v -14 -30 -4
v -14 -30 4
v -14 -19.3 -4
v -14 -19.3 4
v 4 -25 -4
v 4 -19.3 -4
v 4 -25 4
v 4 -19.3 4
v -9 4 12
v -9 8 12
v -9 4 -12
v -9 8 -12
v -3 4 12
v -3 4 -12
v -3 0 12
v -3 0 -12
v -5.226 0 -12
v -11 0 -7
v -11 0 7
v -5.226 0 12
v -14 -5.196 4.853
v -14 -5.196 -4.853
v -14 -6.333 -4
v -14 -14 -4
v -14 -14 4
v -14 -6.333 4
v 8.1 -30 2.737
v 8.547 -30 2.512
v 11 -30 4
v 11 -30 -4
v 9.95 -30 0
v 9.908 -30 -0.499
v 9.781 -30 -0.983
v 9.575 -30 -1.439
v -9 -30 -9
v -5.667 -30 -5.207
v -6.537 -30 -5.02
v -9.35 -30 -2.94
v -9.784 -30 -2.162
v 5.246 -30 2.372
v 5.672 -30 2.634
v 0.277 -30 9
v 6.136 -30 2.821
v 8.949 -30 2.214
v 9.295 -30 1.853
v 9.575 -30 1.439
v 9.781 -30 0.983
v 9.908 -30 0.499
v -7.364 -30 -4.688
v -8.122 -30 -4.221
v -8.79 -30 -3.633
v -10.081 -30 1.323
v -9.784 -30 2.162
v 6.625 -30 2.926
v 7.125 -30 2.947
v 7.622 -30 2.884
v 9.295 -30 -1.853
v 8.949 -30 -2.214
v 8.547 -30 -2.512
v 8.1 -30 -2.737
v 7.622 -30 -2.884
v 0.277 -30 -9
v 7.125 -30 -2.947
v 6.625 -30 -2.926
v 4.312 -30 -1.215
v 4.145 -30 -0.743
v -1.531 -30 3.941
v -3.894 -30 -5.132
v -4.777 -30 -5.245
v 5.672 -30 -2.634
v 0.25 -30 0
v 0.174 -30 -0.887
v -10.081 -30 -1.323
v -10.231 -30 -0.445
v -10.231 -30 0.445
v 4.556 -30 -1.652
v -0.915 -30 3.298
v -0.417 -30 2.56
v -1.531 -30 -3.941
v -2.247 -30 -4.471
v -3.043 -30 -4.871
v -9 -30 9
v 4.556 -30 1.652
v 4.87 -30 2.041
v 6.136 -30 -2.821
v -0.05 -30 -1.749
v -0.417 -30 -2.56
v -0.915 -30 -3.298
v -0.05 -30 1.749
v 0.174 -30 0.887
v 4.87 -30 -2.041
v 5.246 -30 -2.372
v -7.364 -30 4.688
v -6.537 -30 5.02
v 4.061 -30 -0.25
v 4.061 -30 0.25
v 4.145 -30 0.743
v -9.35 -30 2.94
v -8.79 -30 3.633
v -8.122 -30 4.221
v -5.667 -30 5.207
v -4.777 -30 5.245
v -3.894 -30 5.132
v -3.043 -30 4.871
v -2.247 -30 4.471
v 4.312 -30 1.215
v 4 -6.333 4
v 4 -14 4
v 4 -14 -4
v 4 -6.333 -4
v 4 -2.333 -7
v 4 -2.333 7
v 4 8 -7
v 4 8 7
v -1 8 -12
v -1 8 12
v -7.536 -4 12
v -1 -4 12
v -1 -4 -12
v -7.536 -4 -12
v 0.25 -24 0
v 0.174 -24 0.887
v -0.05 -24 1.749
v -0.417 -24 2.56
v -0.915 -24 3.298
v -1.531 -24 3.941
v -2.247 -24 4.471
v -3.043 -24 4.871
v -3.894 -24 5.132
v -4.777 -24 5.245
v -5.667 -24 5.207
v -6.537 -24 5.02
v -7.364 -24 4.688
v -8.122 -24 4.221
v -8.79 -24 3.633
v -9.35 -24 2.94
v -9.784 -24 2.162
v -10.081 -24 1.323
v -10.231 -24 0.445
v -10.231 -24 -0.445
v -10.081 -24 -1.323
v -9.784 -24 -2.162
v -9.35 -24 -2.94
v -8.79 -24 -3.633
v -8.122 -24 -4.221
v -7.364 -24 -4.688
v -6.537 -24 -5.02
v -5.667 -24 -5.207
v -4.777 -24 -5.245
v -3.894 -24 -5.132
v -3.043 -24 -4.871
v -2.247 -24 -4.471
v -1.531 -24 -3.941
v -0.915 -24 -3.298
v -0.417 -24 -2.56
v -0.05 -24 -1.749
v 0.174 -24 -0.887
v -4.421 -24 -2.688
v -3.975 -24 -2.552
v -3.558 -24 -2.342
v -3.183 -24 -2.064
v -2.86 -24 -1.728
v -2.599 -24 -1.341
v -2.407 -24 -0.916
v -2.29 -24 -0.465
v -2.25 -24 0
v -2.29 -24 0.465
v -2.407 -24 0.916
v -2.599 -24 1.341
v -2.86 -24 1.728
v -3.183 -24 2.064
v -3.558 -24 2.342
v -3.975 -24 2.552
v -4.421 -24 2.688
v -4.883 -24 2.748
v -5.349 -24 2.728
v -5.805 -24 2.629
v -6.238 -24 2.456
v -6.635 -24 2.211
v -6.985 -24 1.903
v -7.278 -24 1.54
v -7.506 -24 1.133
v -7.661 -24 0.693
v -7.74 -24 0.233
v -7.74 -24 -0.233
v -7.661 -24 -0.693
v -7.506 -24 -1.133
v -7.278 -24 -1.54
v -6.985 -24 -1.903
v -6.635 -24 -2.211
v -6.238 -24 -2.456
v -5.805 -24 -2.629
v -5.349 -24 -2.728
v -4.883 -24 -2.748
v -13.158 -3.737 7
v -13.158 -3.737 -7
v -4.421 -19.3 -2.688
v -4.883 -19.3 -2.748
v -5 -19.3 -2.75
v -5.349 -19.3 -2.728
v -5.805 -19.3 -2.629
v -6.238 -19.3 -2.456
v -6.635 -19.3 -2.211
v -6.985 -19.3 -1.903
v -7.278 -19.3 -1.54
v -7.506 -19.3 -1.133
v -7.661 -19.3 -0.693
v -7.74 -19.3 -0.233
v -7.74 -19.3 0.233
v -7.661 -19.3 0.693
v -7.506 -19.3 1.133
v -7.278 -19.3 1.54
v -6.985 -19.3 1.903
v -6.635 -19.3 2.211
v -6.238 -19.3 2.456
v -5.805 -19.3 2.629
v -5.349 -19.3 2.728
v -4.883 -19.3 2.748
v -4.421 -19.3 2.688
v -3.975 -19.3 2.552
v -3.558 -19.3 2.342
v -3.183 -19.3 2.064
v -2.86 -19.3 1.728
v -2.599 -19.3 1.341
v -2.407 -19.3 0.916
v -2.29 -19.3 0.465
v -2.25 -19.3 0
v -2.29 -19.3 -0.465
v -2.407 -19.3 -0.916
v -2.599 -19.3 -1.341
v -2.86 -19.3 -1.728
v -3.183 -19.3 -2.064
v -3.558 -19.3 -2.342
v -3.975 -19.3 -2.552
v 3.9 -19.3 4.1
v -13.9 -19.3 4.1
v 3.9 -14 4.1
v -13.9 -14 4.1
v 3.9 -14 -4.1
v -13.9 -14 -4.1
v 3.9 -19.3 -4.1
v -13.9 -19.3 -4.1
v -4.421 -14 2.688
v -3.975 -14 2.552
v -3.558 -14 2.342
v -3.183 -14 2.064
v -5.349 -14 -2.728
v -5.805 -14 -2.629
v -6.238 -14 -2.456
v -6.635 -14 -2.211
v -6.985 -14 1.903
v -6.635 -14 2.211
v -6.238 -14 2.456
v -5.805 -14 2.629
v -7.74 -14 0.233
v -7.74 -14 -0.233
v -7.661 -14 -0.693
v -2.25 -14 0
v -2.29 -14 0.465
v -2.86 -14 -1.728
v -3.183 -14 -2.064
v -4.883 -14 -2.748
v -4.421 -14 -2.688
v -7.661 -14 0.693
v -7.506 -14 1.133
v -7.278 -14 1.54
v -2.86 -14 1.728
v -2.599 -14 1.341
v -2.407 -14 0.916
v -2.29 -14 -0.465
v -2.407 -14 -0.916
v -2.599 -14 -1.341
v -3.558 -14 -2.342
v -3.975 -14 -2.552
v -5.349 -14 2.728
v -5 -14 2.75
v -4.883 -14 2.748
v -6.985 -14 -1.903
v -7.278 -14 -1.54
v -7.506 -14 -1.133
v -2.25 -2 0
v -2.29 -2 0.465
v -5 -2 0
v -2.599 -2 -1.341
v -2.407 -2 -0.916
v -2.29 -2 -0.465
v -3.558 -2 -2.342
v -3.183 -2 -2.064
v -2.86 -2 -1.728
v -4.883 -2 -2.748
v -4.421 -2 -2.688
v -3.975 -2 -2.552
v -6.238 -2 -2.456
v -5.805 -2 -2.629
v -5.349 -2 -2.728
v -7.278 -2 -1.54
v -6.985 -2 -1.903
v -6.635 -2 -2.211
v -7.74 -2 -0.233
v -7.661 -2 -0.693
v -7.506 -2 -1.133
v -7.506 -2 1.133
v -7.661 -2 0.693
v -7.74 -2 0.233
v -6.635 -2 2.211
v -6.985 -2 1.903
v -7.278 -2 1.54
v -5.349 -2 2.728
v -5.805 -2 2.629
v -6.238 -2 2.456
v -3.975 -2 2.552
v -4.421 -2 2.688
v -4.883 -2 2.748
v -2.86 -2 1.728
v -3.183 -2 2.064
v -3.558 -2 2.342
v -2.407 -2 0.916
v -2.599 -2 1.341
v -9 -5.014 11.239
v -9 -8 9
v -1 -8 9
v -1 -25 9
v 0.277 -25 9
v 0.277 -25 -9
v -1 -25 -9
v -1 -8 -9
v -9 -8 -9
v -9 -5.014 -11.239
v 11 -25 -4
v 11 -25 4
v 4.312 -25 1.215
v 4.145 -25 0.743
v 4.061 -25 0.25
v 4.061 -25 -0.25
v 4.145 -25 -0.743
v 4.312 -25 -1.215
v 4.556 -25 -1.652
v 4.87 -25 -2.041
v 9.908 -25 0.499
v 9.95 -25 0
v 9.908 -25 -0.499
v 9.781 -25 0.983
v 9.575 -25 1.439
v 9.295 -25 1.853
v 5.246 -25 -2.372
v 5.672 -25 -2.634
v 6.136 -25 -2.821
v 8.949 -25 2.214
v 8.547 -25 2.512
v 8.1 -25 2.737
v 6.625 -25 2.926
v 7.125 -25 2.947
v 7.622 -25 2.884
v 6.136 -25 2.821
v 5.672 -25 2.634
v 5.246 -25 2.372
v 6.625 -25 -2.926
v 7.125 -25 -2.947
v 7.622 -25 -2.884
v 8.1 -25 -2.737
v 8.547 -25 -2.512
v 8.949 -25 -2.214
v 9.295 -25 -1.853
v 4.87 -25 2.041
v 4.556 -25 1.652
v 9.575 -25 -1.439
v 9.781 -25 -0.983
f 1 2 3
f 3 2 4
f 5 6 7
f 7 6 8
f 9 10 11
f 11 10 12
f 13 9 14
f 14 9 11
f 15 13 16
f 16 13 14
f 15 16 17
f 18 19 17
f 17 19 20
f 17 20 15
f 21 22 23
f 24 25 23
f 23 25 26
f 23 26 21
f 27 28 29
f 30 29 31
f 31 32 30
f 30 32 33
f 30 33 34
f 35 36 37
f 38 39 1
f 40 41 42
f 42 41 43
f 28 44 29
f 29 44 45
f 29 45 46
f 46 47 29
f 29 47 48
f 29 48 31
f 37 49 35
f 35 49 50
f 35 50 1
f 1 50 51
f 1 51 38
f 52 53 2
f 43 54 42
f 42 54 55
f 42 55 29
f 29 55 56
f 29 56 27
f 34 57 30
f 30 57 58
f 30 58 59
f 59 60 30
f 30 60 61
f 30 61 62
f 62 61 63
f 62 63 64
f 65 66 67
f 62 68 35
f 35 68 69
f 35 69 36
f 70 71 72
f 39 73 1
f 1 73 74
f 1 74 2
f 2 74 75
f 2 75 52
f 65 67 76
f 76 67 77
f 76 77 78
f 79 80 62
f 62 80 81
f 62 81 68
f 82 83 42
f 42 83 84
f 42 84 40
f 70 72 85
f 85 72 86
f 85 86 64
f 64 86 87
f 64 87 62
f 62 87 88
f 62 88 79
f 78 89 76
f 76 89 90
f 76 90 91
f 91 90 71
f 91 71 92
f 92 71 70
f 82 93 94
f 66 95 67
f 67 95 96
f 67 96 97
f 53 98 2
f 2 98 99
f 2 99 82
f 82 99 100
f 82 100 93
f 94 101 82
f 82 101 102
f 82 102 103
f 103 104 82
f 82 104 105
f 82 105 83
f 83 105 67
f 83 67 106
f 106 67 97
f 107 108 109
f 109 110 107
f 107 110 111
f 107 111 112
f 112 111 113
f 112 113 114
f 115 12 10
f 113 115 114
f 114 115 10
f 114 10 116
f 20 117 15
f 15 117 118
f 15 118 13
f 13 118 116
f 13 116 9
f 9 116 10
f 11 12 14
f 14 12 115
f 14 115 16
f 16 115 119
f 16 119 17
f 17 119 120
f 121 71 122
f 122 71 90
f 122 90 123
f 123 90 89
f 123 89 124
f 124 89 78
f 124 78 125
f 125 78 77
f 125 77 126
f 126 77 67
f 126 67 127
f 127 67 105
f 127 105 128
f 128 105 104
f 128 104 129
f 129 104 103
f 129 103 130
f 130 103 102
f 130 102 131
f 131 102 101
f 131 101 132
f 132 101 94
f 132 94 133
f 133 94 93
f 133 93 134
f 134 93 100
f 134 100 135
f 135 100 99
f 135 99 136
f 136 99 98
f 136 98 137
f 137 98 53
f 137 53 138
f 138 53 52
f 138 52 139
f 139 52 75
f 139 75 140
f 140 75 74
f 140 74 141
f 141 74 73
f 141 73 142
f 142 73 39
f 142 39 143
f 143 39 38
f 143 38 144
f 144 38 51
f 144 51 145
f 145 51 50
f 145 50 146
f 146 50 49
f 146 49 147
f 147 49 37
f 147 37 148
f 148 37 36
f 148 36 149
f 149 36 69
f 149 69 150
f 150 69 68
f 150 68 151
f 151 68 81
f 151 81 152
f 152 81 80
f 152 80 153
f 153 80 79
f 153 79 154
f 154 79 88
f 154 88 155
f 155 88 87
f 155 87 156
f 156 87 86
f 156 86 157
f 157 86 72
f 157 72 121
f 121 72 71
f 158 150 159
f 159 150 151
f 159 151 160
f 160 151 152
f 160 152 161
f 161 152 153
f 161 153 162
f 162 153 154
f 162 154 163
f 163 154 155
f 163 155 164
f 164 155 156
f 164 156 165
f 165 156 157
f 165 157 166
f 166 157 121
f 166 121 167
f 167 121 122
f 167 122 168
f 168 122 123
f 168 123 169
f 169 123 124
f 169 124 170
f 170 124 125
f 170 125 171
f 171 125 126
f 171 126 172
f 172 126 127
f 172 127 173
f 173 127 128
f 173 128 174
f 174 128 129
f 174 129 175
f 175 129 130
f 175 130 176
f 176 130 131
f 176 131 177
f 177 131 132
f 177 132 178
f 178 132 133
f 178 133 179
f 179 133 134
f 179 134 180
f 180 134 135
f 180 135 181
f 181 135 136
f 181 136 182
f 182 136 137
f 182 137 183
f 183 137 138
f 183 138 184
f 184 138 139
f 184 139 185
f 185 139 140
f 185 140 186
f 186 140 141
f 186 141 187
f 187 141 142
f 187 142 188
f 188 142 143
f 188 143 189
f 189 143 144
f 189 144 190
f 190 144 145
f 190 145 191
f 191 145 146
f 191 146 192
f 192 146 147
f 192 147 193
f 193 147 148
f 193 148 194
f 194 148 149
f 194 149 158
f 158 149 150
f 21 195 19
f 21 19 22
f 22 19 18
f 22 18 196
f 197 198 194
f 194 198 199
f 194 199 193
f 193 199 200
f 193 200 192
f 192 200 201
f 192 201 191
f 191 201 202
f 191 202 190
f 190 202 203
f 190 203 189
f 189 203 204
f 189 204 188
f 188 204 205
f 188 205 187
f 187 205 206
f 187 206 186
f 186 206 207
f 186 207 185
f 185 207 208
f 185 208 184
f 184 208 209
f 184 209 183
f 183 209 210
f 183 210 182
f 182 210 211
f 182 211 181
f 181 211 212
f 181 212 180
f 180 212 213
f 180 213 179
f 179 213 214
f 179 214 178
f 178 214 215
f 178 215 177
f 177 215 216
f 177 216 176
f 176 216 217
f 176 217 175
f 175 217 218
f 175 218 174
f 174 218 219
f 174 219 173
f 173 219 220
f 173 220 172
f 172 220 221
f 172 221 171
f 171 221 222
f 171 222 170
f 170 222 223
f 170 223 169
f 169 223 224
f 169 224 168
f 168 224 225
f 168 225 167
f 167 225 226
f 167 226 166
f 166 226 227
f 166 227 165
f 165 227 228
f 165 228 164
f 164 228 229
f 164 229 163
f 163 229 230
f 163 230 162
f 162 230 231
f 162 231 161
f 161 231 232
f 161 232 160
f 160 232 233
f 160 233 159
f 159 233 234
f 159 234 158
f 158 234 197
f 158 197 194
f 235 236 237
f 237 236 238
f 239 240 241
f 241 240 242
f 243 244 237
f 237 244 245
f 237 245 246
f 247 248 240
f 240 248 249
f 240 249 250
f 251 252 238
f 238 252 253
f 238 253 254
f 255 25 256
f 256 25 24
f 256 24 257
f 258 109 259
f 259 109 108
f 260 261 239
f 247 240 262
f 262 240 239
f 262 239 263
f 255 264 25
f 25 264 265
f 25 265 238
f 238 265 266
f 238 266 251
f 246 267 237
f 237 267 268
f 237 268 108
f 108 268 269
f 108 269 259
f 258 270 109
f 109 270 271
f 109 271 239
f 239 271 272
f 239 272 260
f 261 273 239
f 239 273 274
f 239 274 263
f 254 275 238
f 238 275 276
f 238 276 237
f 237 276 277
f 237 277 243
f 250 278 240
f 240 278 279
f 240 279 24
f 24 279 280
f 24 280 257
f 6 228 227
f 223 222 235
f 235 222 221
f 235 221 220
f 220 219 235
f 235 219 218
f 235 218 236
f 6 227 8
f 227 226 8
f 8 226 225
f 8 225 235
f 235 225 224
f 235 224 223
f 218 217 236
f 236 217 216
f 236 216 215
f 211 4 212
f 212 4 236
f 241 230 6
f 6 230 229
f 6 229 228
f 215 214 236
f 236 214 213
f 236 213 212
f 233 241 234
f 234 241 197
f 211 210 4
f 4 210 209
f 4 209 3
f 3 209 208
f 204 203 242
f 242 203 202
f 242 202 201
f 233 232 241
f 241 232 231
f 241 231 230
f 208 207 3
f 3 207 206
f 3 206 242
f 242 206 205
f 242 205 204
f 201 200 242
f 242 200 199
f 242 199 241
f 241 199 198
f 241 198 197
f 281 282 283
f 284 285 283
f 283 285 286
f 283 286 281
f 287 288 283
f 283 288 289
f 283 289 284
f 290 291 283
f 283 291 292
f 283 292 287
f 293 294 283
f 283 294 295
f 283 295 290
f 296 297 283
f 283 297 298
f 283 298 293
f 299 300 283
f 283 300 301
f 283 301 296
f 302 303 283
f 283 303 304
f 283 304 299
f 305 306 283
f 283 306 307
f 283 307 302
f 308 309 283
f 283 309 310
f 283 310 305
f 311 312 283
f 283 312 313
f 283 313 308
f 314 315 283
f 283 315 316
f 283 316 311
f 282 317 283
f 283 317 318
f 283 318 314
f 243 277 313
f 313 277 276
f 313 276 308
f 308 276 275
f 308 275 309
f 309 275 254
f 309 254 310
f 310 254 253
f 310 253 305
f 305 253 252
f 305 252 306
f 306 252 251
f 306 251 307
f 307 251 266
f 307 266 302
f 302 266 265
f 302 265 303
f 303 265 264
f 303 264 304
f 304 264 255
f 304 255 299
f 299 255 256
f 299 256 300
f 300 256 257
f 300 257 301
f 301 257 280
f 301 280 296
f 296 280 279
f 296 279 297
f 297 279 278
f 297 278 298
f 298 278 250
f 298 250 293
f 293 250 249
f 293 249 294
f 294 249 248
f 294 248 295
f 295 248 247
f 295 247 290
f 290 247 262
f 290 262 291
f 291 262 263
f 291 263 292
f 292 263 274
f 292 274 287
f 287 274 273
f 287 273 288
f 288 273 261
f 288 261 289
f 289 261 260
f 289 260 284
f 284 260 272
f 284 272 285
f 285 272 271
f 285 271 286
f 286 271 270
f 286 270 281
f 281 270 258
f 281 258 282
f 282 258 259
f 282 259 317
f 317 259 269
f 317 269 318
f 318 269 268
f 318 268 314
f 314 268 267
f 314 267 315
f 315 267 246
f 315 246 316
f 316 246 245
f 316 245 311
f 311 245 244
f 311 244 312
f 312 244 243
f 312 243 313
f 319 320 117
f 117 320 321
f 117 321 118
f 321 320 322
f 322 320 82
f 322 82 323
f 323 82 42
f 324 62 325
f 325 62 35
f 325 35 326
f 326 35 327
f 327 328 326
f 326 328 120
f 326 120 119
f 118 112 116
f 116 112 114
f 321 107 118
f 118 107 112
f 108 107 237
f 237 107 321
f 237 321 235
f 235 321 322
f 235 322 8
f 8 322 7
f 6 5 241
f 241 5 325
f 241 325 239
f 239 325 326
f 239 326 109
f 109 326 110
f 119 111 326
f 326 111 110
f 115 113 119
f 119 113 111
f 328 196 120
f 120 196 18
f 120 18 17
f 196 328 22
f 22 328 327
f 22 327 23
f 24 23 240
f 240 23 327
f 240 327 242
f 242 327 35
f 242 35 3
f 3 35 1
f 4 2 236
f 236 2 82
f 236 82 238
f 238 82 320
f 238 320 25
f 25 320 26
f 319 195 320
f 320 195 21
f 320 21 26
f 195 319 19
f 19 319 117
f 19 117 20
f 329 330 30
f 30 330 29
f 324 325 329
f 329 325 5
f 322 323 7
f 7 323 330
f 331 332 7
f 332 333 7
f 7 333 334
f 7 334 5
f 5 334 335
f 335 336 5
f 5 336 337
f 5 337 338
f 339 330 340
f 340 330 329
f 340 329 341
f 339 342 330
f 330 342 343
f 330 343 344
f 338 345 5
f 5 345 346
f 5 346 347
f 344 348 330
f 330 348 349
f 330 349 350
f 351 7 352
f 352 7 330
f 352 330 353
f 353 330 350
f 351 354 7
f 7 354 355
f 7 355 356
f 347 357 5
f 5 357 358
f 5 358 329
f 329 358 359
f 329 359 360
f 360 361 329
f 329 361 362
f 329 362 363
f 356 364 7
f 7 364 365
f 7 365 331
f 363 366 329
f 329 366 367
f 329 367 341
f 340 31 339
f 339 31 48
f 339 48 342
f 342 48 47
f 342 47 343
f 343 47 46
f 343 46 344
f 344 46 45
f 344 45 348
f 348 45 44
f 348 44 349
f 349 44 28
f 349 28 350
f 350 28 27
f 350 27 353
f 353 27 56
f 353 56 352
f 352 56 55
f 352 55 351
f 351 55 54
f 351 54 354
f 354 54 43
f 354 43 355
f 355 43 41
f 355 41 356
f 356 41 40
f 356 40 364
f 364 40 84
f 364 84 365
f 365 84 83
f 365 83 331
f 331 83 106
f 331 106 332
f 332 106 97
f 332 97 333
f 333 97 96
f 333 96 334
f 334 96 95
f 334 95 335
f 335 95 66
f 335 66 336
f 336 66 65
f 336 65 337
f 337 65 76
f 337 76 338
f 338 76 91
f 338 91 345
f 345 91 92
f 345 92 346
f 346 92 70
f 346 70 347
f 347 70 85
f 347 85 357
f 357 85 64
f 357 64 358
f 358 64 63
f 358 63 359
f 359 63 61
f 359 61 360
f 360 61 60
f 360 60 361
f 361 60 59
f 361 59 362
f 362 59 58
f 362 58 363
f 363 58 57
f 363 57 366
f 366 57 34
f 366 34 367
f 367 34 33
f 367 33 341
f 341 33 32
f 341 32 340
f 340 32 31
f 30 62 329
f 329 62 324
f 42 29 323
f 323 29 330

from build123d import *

# Parameters (mm, degrees)
BOSS_EXTRUDE1_DEPTH = 12
SKETCH2_R           = 5.25
CUT_EXTRUDE1_DEPTH  = 6
CHAMFER2_SIZE       = 3
CHAMFER2_SIZE2      = 5.196152423
SKETCH4_R           = 2.75
CUT_EXTRUDE3_DEPTH  = 28
CUT_EXTRUDE4_REACH  = 38.986
SKETCH5_W           = 8.2
SKETCH5_H           = 5.3
CUT_EXTRUDE6_REACH  = 38.986
CHAMFER3_SIZE       = 5
SKETCH8_R           = 2.95
BOSS_EXTRUDE2_DEPTH = 5
CHAMFER4_SIZE       = 5
CHAMFER4_SIZE2      = 10.722534603


with BuildPart() as part:
    # Sketch1 → Boss-Extrude1 (new, symmetric)
    with BuildSketch(Plane.XY):
        Polygon((-9, 8), (4, 8), (4, -30), (-14, -30), (-14, 0), (-3, 0), (-3, 4), (-9, 4), align=None)
    extrude(amount=BOSS_EXTRUDE1_DEPTH, both=True)

    # Sketch2 → Cut-Extrude1 (cut)
    with BuildSketch(Plane.XZ.offset(30)):
        with Locations((-5, 0)):
            Circle(SKETCH2_R)
    extrude(amount=-CUT_EXTRUDE1_DEPTH, mode=Mode.SUBTRACT)

    # Chamfer2
    chamfer2_edges = [part.edges().sort_by_distance(p)[0] for p in [
        (-14, 0, 0),
    ]]
    chamfer2_side = [part.faces().sort_by_distance(p)[0] for p in [
        (-8.5, 0, 0),
    ]]
    chamfer(chamfer2_edges, length=CHAMFER2_SIZE, length2=CHAMFER2_SIZE2, reference=chamfer2_side[0])

    # Sketch4 → Cut-Extrude3 (cut)
    with BuildSketch(Plane.XZ.offset(30)):
        with Locations((-5, 0)):
            Circle(SKETCH4_R)
    extrude(amount=-CUT_EXTRUDE3_DEPTH, mode=Mode.SUBTRACT)

    # Sketch5 → Cut-Extrude4 (cut, up to next)
    with BuildSketch(Plane(origin=(4, 0, 0), x_dir=(0, 0, -1), z_dir=(1, 0, 0)), mode=Mode.PRIVATE) as cut_extrude4_sk1:
        with Locations((0, -16.65)):
            Rectangle(SKETCH5_W, SKETCH5_H)
    cut_extrude4_tool1 = extrude(cut_extrude4_sk1.sketch, amount=-CUT_EXTRUDE4_REACH, mode=Mode.PRIVATE) & part.part
    add(cut_extrude4_tool1.solids().sort_by_distance((4, -16.65, 0))[0], mode=Mode.SUBTRACT)

    # Sketch7 → Cut-Extrude6 (cut, up to next)
    with BuildSketch(Plane(origin=(4, 0, 0), x_dir=(0, 0, -1), z_dir=(1, 0, 0)), mode=Mode.PRIVATE) as cut_extrude6_sk1:
        Polygon((-12, -30), (-12, -4), (-9, -8), (-9, -30), align=None)
    cut_extrude6_tool1 = extrude(cut_extrude6_sk1.sketch, amount=-CUT_EXTRUDE6_REACH, mode=Mode.PRIVATE) & part.part
    # Sketch7 → Cut-Extrude6 (cut, up to next)
    with BuildSketch(Plane(origin=(4, 0, 0), x_dir=(0, 0, -1), z_dir=(1, 0, 0)), mode=Mode.PRIVATE) as cut_extrude6_sk2:
        Polygon((9, -30), (12, -30), (12, -4), (9, -8), align=None)
    cut_extrude6_tool2 = extrude(cut_extrude6_sk2.sketch, amount=-CUT_EXTRUDE6_REACH, mode=Mode.PRIVATE) & part.part
    add(cut_extrude6_tool1.solids().sort_by_distance((4, -17.972222, 10.541667))[0], mode=Mode.SUBTRACT)
    add(cut_extrude6_tool2.solids().sort_by_distance((4, -17.972222, -10.541667))[0], mode=Mode.SUBTRACT)

    # Chamfer3
    # the kernel refuses this chamfer: 5 mm, written as the material it takes off along each edge
    with BuildSketch(Plane(origin=(4, 4.85841494, 9), x_dir=(0, 0, -1), z_dir=(0, -1, 0))) as chamfer3_piece_1_section:
        Polygon((CHAMFER3_SIZE, 0), (0, -CHAMFER3_SIZE), (0, 0), align=None)
    chamfer3_piece_1 = extrude(amount=47.71682988, mode=Mode.PRIVATE)
    chamfer3_piece_1 = split(chamfer3_piece_1, bisect_by=Plane(origin=(5.357524482, 4.043900251, 10.086019586), z_dir=(0.7071067811865478, -0.4242640687119279, 0.5656854249492383)), keep=Keep.TOP, mode=Mode.PRIVATE)
    add(chamfer3_piece_1, mode=Mode.SUBTRACT)
    with BuildSketch(Plane(origin=(4, 6.286731952, 19.715048964), x_dir=(0, 0.5999999999999992, -0.8000000000000004), z_dir=(0, -0.8000000000000005, -0.5999999999999993))) as chamfer3_piece_2_section:
        Polygon((CHAMFER3_SIZE, 0), (0, -CHAMFER3_SIZE), (0, 0), align=None)
    chamfer3_piece_2 = extrude(amount=30.71682988, mode=Mode.PRIVATE)
    chamfer3_piece_2 = split(chamfer3_piece_2, bisect_by=Plane(origin=(-3.857524482, 6.286731952, 11.857524482), z_dir=(0.7071067811865476, 0, 0.7071067811865476)), keep=Keep.TOP, mode=Mode.PRIVATE)
    add(chamfer3_piece_2, mode=Mode.SUBTRACT)
    with BuildSketch(Plane(origin=(4, 20.85841494, 12), x_dir=(0, 0, -1), z_dir=(0, -1, 0)), Plane(origin=(4, 20.85841494, -12), x_dir=(-1, 0, 0), z_dir=(0, -1, 0))) as chamfer3_piece_3:
        Polygon((CHAMFER3_SIZE, 0), (0, -CHAMFER3_SIZE), (0, 0), align=None)
    extrude(amount=37.71682988, mode=Mode.SUBTRACT)
    with BuildSketch(Plane(origin=(4, 6.286731952, -19.715048964), x_dir=(-1, 0, 0), z_dir=(0, -0.8000000000000006, 0.5999999999999993))) as chamfer3_piece_4_section:
        Polygon((CHAMFER3_SIZE, 0), (0, -CHAMFER3_SIZE), (0, 0), align=None)
    chamfer3_piece_4 = extrude(amount=30.71682988, mode=Mode.PRIVATE)
    chamfer3_piece_4 = split(chamfer3_piece_4, bisect_by=Plane(origin=(-3.857524482, 6.286731952, -11.857524482), z_dir=(0.7071067811865476, 0, -0.7071067811865476)), keep=Keep.TOP, mode=Mode.PRIVATE)
    add(chamfer3_piece_4, mode=Mode.SUBTRACT)
    with BuildSketch(Plane(origin=(4, 4.85841494, -9), x_dir=(0, 0, 1), z_dir=(0, -1, 0))) as chamfer3_piece_5_section:
        Polygon((CHAMFER3_SIZE, 0), (0, CHAMFER3_SIZE), (0, 0), align=None)
    chamfer3_piece_5 = extrude(amount=47.71682988, mode=Mode.PRIVATE)
    chamfer3_piece_5 = split(chamfer3_piece_5, bisect_by=Plane(origin=(5.357524482, 4.043900251, -10.086019586), z_dir=(0.7071067811865476, -0.424264068711928, -0.5656854249492386)), keep=Keep.TOP, mode=Mode.PRIVATE)
    add(chamfer3_piece_5, mode=Mode.SUBTRACT)
    with BuildSketch(Plane(origin=(-14, -42.85841494, -9), x_dir=(1, 0, 0), z_dir=(0, 1, 0))) as chamfer3_piece_6_section:
        Polygon((CHAMFER3_SIZE, 0), (0, -CHAMFER3_SIZE), (0, 0), align=None)
    chamfer3_piece_6 = extrude(amount=47.71682988, mode=Mode.PRIVATE)
    chamfer3_piece_6 = split(chamfer3_piece_6, bisect_by=Plane(origin=(-1.042475518, -35.083900251, 1.366019586), z_dir=(-0.7071067811865479, -0.42426406871192784, -0.5656854249492381)), keep=Keep.TOP, mode=Mode.PRIVATE)
    add(chamfer3_piece_6, mode=Mode.SUBTRACT)
    with BuildSketch(Plane(origin=(-14, -18.286731952, -1.284951036), x_dir=(1, 0, 0), z_dir=(0, 0.8000000000000006, -0.5999999999999993))) as chamfer3_piece_7_section:
        Polygon((CHAMFER3_SIZE, 0), (0, -CHAMFER3_SIZE), (0, 0), align=None)
    chamfer3_piece_7 = extrude(amount=29.221639351, mode=Mode.PRIVATE)
    chamfer3_piece_7 = split(chamfer3_piece_7, bisect_by=Plane(origin=(-15.357524482, -18.286731952, -2.642475518), z_dir=(-0.7071067811865476, 0, -0.7071067811865476)), keep=Keep.TOP, mode=Mode.PRIVATE)
    add(chamfer3_piece_7, mode=Mode.SUBTRACT)
    with BuildSketch(Plane(origin=(-4.57079253, 11.13571399, -12), x_dir=(0.8660254037844396, -0.49999999999999833, 0), z_dir=(-0.49999999999999833, -0.8660254037844397, 0))) as chamfer3_piece_8_section:
        Polygon((CHAMFER3_SIZE, 0), (0, CHAMFER3_SIZE), (0, 0), align=None)
    chamfer3_piece_8 = extrude(amount=30.335632033, mode=Mode.PRIVATE)
    chamfer3_piece_8 = split(chamfer3_piece_8, bisect_by=Plane(origin=(-4.57079253, 0, -12), z_dir=(0, -1, 0)), keep=Keep.TOP, mode=Mode.PRIVATE)
    add(chamfer3_piece_8, mode=Mode.SUBTRACT)
    with BuildSketch(Plane(origin=(-4.57079253, 11.13571399, 12), x_dir=(0, 0, -1), z_dir=(-0.49999999999999833, -0.8660254037844397, 0))) as chamfer3_piece_9_section:
        Polygon((CHAMFER3_SIZE, 0), (0, CHAMFER3_SIZE), (0, 0), align=None)
    chamfer3_piece_9 = extrude(amount=30.335632033, mode=Mode.PRIVATE)
    chamfer3_piece_9 = split(chamfer3_piece_9, bisect_by=Plane(origin=(-4.57079253, 0, 12), z_dir=(0, -1, 0)), keep=Keep.TOP, mode=Mode.PRIVATE)
    add(chamfer3_piece_9, mode=Mode.SUBTRACT)
    with BuildSketch(Plane(origin=(-14, -18.286731952, 1.284951036), x_dir=(0, 0.5999999999999993, -0.8000000000000005), z_dir=(0, 0.8000000000000005, 0.5999999999999993))) as chamfer3_piece_10_section:
        Polygon((CHAMFER3_SIZE, 0), (0, -CHAMFER3_SIZE), (0, 0), align=None)
    chamfer3_piece_10 = extrude(amount=29.221639351, mode=Mode.PRIVATE)
    chamfer3_piece_10 = split(chamfer3_piece_10, bisect_by=Plane(origin=(-15.357524482, -18.286731952, 2.642475518), z_dir=(-0.7071067811865476, 0, 0.7071067811865476)), keep=Keep.TOP, mode=Mode.PRIVATE)
    add(chamfer3_piece_10, mode=Mode.SUBTRACT)
    with BuildSketch(Plane(origin=(-14, -42.85841494, 9), x_dir=(0, 0, -1), z_dir=(0, 1, 0))) as chamfer3_piece_11_section:
        Polygon((CHAMFER3_SIZE, 0), (0, -CHAMFER3_SIZE), (0, 0), align=None)
    chamfer3_piece_11 = extrude(amount=47.71682988, mode=Mode.PRIVATE)
    chamfer3_piece_11 = split(chamfer3_piece_11, bisect_by=Plane(origin=(-1.042475518, -35.083900251, -1.366019586), z_dir=(-0.7071067811865476, -0.4242640687119281, 0.5656854249492385)), keep=Keep.TOP, mode=Mode.PRIVATE)
    add(chamfer3_piece_11, mode=Mode.SUBTRACT)

    # Sketch8 → Boss-Extrude2 (add)
    with BuildSketch(Plane.XZ.offset(30)):
        Polygon((4, 4), (-1, 9), (11, 9), (11, -9), (-1, -9), (4, -4), align=None)
        with Locations((7, 0)):
            Circle(SKETCH8_R, mode=Mode.SUBTRACT)
    extrude(amount=-BOSS_EXTRUDE2_DEPTH)

    # Chamfer4
    chamfer4_edges = [part.edges().sort_by_distance(p)[0] for p in [
        (11, -27.5, 9),
        (11, -27.5, -9),
    ]]
    chamfer4_side = [part.faces().sort_by_distance(p)[0] for p in [
        (11, -27.5, 0),
    ]]
    chamfer(chamfer4_edges, length=CHAMFER4_SIZE, length2=CHAMFER4_SIZE2, reference=chamfer4_side[0])


solid = part.part
